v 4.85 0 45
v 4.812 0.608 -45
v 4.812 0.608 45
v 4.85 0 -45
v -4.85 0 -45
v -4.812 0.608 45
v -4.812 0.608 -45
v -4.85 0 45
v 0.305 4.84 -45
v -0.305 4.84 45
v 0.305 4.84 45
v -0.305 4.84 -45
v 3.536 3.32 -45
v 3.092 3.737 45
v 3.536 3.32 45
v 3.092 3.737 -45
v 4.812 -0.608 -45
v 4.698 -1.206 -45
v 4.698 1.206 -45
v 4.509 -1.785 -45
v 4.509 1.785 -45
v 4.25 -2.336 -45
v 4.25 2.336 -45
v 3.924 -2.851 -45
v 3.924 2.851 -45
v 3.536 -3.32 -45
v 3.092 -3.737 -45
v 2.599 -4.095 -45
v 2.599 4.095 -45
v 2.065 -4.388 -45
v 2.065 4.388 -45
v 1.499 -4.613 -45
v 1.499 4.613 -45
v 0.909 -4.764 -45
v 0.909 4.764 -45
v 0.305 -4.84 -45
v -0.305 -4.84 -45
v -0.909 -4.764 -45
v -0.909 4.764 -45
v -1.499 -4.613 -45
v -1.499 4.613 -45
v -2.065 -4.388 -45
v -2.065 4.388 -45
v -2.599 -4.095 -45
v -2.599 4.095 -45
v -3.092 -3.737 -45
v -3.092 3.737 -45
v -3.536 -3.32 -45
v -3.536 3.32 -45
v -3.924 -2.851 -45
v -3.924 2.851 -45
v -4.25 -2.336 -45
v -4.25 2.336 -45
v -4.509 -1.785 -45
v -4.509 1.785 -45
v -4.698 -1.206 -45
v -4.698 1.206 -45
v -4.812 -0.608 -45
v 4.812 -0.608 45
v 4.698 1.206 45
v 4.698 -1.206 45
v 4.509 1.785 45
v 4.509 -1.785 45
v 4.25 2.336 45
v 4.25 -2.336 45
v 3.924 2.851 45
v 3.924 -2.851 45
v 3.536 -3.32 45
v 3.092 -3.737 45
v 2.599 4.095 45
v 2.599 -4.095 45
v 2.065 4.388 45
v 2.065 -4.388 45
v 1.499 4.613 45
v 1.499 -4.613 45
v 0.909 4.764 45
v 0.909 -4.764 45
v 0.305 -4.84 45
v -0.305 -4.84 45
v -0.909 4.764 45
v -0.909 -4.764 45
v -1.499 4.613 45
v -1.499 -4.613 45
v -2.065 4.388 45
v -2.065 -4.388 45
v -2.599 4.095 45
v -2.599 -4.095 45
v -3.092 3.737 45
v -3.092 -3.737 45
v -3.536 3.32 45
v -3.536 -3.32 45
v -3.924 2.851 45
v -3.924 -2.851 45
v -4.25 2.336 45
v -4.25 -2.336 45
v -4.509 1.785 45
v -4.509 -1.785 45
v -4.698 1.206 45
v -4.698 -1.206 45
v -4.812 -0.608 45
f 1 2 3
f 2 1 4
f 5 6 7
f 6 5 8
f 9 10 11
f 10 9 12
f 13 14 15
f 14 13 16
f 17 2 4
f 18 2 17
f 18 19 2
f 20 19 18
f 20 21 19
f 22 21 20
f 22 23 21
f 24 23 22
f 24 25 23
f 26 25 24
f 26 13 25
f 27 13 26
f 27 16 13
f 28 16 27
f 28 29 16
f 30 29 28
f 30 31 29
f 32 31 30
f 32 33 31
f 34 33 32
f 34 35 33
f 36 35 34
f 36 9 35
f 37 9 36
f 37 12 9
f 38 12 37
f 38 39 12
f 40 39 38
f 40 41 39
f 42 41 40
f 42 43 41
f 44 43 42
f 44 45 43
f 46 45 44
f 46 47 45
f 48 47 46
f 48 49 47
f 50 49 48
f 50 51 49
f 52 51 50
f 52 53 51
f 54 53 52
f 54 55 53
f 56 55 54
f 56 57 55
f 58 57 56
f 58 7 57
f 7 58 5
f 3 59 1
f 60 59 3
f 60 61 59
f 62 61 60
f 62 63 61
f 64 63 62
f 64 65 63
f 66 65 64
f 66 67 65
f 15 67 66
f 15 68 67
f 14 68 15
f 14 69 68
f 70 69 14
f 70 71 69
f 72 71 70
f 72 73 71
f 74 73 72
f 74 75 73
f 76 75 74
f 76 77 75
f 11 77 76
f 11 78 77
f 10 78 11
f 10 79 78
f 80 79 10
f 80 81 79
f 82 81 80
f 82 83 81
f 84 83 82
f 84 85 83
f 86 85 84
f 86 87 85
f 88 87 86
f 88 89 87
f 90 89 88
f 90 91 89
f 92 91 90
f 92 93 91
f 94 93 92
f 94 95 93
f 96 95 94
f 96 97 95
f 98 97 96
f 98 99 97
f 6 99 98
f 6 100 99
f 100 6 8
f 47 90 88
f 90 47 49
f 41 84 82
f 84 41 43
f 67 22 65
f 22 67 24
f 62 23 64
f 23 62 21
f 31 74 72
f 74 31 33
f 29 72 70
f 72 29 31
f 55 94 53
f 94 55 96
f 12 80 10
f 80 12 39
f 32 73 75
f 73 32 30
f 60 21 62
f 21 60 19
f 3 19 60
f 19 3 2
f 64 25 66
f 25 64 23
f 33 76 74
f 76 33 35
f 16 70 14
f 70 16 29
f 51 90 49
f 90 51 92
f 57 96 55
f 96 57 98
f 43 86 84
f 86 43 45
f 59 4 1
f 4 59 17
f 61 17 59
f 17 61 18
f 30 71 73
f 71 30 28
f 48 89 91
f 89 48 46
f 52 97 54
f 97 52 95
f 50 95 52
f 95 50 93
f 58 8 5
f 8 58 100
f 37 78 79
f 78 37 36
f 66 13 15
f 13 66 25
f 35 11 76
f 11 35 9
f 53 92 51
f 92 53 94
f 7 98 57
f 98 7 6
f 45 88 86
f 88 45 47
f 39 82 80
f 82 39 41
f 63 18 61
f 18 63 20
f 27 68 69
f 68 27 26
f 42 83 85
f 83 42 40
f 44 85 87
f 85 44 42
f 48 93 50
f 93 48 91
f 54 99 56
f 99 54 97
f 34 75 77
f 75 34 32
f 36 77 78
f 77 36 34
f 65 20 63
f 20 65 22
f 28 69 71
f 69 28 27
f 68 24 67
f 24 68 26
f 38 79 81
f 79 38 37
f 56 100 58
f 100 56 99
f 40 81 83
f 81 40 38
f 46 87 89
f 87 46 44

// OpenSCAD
$fn = 50;


difference() {
	union() {
		translate(v = [0, 0, -45.0000000000]) {
			cylinder(h = 90, r = 4.8500000000);
		}
	}
	union() {
		translate(v = [0, 0, -100.0000000000]) {
			cylinder(h = 200, r = 0);
		}
	}
}
